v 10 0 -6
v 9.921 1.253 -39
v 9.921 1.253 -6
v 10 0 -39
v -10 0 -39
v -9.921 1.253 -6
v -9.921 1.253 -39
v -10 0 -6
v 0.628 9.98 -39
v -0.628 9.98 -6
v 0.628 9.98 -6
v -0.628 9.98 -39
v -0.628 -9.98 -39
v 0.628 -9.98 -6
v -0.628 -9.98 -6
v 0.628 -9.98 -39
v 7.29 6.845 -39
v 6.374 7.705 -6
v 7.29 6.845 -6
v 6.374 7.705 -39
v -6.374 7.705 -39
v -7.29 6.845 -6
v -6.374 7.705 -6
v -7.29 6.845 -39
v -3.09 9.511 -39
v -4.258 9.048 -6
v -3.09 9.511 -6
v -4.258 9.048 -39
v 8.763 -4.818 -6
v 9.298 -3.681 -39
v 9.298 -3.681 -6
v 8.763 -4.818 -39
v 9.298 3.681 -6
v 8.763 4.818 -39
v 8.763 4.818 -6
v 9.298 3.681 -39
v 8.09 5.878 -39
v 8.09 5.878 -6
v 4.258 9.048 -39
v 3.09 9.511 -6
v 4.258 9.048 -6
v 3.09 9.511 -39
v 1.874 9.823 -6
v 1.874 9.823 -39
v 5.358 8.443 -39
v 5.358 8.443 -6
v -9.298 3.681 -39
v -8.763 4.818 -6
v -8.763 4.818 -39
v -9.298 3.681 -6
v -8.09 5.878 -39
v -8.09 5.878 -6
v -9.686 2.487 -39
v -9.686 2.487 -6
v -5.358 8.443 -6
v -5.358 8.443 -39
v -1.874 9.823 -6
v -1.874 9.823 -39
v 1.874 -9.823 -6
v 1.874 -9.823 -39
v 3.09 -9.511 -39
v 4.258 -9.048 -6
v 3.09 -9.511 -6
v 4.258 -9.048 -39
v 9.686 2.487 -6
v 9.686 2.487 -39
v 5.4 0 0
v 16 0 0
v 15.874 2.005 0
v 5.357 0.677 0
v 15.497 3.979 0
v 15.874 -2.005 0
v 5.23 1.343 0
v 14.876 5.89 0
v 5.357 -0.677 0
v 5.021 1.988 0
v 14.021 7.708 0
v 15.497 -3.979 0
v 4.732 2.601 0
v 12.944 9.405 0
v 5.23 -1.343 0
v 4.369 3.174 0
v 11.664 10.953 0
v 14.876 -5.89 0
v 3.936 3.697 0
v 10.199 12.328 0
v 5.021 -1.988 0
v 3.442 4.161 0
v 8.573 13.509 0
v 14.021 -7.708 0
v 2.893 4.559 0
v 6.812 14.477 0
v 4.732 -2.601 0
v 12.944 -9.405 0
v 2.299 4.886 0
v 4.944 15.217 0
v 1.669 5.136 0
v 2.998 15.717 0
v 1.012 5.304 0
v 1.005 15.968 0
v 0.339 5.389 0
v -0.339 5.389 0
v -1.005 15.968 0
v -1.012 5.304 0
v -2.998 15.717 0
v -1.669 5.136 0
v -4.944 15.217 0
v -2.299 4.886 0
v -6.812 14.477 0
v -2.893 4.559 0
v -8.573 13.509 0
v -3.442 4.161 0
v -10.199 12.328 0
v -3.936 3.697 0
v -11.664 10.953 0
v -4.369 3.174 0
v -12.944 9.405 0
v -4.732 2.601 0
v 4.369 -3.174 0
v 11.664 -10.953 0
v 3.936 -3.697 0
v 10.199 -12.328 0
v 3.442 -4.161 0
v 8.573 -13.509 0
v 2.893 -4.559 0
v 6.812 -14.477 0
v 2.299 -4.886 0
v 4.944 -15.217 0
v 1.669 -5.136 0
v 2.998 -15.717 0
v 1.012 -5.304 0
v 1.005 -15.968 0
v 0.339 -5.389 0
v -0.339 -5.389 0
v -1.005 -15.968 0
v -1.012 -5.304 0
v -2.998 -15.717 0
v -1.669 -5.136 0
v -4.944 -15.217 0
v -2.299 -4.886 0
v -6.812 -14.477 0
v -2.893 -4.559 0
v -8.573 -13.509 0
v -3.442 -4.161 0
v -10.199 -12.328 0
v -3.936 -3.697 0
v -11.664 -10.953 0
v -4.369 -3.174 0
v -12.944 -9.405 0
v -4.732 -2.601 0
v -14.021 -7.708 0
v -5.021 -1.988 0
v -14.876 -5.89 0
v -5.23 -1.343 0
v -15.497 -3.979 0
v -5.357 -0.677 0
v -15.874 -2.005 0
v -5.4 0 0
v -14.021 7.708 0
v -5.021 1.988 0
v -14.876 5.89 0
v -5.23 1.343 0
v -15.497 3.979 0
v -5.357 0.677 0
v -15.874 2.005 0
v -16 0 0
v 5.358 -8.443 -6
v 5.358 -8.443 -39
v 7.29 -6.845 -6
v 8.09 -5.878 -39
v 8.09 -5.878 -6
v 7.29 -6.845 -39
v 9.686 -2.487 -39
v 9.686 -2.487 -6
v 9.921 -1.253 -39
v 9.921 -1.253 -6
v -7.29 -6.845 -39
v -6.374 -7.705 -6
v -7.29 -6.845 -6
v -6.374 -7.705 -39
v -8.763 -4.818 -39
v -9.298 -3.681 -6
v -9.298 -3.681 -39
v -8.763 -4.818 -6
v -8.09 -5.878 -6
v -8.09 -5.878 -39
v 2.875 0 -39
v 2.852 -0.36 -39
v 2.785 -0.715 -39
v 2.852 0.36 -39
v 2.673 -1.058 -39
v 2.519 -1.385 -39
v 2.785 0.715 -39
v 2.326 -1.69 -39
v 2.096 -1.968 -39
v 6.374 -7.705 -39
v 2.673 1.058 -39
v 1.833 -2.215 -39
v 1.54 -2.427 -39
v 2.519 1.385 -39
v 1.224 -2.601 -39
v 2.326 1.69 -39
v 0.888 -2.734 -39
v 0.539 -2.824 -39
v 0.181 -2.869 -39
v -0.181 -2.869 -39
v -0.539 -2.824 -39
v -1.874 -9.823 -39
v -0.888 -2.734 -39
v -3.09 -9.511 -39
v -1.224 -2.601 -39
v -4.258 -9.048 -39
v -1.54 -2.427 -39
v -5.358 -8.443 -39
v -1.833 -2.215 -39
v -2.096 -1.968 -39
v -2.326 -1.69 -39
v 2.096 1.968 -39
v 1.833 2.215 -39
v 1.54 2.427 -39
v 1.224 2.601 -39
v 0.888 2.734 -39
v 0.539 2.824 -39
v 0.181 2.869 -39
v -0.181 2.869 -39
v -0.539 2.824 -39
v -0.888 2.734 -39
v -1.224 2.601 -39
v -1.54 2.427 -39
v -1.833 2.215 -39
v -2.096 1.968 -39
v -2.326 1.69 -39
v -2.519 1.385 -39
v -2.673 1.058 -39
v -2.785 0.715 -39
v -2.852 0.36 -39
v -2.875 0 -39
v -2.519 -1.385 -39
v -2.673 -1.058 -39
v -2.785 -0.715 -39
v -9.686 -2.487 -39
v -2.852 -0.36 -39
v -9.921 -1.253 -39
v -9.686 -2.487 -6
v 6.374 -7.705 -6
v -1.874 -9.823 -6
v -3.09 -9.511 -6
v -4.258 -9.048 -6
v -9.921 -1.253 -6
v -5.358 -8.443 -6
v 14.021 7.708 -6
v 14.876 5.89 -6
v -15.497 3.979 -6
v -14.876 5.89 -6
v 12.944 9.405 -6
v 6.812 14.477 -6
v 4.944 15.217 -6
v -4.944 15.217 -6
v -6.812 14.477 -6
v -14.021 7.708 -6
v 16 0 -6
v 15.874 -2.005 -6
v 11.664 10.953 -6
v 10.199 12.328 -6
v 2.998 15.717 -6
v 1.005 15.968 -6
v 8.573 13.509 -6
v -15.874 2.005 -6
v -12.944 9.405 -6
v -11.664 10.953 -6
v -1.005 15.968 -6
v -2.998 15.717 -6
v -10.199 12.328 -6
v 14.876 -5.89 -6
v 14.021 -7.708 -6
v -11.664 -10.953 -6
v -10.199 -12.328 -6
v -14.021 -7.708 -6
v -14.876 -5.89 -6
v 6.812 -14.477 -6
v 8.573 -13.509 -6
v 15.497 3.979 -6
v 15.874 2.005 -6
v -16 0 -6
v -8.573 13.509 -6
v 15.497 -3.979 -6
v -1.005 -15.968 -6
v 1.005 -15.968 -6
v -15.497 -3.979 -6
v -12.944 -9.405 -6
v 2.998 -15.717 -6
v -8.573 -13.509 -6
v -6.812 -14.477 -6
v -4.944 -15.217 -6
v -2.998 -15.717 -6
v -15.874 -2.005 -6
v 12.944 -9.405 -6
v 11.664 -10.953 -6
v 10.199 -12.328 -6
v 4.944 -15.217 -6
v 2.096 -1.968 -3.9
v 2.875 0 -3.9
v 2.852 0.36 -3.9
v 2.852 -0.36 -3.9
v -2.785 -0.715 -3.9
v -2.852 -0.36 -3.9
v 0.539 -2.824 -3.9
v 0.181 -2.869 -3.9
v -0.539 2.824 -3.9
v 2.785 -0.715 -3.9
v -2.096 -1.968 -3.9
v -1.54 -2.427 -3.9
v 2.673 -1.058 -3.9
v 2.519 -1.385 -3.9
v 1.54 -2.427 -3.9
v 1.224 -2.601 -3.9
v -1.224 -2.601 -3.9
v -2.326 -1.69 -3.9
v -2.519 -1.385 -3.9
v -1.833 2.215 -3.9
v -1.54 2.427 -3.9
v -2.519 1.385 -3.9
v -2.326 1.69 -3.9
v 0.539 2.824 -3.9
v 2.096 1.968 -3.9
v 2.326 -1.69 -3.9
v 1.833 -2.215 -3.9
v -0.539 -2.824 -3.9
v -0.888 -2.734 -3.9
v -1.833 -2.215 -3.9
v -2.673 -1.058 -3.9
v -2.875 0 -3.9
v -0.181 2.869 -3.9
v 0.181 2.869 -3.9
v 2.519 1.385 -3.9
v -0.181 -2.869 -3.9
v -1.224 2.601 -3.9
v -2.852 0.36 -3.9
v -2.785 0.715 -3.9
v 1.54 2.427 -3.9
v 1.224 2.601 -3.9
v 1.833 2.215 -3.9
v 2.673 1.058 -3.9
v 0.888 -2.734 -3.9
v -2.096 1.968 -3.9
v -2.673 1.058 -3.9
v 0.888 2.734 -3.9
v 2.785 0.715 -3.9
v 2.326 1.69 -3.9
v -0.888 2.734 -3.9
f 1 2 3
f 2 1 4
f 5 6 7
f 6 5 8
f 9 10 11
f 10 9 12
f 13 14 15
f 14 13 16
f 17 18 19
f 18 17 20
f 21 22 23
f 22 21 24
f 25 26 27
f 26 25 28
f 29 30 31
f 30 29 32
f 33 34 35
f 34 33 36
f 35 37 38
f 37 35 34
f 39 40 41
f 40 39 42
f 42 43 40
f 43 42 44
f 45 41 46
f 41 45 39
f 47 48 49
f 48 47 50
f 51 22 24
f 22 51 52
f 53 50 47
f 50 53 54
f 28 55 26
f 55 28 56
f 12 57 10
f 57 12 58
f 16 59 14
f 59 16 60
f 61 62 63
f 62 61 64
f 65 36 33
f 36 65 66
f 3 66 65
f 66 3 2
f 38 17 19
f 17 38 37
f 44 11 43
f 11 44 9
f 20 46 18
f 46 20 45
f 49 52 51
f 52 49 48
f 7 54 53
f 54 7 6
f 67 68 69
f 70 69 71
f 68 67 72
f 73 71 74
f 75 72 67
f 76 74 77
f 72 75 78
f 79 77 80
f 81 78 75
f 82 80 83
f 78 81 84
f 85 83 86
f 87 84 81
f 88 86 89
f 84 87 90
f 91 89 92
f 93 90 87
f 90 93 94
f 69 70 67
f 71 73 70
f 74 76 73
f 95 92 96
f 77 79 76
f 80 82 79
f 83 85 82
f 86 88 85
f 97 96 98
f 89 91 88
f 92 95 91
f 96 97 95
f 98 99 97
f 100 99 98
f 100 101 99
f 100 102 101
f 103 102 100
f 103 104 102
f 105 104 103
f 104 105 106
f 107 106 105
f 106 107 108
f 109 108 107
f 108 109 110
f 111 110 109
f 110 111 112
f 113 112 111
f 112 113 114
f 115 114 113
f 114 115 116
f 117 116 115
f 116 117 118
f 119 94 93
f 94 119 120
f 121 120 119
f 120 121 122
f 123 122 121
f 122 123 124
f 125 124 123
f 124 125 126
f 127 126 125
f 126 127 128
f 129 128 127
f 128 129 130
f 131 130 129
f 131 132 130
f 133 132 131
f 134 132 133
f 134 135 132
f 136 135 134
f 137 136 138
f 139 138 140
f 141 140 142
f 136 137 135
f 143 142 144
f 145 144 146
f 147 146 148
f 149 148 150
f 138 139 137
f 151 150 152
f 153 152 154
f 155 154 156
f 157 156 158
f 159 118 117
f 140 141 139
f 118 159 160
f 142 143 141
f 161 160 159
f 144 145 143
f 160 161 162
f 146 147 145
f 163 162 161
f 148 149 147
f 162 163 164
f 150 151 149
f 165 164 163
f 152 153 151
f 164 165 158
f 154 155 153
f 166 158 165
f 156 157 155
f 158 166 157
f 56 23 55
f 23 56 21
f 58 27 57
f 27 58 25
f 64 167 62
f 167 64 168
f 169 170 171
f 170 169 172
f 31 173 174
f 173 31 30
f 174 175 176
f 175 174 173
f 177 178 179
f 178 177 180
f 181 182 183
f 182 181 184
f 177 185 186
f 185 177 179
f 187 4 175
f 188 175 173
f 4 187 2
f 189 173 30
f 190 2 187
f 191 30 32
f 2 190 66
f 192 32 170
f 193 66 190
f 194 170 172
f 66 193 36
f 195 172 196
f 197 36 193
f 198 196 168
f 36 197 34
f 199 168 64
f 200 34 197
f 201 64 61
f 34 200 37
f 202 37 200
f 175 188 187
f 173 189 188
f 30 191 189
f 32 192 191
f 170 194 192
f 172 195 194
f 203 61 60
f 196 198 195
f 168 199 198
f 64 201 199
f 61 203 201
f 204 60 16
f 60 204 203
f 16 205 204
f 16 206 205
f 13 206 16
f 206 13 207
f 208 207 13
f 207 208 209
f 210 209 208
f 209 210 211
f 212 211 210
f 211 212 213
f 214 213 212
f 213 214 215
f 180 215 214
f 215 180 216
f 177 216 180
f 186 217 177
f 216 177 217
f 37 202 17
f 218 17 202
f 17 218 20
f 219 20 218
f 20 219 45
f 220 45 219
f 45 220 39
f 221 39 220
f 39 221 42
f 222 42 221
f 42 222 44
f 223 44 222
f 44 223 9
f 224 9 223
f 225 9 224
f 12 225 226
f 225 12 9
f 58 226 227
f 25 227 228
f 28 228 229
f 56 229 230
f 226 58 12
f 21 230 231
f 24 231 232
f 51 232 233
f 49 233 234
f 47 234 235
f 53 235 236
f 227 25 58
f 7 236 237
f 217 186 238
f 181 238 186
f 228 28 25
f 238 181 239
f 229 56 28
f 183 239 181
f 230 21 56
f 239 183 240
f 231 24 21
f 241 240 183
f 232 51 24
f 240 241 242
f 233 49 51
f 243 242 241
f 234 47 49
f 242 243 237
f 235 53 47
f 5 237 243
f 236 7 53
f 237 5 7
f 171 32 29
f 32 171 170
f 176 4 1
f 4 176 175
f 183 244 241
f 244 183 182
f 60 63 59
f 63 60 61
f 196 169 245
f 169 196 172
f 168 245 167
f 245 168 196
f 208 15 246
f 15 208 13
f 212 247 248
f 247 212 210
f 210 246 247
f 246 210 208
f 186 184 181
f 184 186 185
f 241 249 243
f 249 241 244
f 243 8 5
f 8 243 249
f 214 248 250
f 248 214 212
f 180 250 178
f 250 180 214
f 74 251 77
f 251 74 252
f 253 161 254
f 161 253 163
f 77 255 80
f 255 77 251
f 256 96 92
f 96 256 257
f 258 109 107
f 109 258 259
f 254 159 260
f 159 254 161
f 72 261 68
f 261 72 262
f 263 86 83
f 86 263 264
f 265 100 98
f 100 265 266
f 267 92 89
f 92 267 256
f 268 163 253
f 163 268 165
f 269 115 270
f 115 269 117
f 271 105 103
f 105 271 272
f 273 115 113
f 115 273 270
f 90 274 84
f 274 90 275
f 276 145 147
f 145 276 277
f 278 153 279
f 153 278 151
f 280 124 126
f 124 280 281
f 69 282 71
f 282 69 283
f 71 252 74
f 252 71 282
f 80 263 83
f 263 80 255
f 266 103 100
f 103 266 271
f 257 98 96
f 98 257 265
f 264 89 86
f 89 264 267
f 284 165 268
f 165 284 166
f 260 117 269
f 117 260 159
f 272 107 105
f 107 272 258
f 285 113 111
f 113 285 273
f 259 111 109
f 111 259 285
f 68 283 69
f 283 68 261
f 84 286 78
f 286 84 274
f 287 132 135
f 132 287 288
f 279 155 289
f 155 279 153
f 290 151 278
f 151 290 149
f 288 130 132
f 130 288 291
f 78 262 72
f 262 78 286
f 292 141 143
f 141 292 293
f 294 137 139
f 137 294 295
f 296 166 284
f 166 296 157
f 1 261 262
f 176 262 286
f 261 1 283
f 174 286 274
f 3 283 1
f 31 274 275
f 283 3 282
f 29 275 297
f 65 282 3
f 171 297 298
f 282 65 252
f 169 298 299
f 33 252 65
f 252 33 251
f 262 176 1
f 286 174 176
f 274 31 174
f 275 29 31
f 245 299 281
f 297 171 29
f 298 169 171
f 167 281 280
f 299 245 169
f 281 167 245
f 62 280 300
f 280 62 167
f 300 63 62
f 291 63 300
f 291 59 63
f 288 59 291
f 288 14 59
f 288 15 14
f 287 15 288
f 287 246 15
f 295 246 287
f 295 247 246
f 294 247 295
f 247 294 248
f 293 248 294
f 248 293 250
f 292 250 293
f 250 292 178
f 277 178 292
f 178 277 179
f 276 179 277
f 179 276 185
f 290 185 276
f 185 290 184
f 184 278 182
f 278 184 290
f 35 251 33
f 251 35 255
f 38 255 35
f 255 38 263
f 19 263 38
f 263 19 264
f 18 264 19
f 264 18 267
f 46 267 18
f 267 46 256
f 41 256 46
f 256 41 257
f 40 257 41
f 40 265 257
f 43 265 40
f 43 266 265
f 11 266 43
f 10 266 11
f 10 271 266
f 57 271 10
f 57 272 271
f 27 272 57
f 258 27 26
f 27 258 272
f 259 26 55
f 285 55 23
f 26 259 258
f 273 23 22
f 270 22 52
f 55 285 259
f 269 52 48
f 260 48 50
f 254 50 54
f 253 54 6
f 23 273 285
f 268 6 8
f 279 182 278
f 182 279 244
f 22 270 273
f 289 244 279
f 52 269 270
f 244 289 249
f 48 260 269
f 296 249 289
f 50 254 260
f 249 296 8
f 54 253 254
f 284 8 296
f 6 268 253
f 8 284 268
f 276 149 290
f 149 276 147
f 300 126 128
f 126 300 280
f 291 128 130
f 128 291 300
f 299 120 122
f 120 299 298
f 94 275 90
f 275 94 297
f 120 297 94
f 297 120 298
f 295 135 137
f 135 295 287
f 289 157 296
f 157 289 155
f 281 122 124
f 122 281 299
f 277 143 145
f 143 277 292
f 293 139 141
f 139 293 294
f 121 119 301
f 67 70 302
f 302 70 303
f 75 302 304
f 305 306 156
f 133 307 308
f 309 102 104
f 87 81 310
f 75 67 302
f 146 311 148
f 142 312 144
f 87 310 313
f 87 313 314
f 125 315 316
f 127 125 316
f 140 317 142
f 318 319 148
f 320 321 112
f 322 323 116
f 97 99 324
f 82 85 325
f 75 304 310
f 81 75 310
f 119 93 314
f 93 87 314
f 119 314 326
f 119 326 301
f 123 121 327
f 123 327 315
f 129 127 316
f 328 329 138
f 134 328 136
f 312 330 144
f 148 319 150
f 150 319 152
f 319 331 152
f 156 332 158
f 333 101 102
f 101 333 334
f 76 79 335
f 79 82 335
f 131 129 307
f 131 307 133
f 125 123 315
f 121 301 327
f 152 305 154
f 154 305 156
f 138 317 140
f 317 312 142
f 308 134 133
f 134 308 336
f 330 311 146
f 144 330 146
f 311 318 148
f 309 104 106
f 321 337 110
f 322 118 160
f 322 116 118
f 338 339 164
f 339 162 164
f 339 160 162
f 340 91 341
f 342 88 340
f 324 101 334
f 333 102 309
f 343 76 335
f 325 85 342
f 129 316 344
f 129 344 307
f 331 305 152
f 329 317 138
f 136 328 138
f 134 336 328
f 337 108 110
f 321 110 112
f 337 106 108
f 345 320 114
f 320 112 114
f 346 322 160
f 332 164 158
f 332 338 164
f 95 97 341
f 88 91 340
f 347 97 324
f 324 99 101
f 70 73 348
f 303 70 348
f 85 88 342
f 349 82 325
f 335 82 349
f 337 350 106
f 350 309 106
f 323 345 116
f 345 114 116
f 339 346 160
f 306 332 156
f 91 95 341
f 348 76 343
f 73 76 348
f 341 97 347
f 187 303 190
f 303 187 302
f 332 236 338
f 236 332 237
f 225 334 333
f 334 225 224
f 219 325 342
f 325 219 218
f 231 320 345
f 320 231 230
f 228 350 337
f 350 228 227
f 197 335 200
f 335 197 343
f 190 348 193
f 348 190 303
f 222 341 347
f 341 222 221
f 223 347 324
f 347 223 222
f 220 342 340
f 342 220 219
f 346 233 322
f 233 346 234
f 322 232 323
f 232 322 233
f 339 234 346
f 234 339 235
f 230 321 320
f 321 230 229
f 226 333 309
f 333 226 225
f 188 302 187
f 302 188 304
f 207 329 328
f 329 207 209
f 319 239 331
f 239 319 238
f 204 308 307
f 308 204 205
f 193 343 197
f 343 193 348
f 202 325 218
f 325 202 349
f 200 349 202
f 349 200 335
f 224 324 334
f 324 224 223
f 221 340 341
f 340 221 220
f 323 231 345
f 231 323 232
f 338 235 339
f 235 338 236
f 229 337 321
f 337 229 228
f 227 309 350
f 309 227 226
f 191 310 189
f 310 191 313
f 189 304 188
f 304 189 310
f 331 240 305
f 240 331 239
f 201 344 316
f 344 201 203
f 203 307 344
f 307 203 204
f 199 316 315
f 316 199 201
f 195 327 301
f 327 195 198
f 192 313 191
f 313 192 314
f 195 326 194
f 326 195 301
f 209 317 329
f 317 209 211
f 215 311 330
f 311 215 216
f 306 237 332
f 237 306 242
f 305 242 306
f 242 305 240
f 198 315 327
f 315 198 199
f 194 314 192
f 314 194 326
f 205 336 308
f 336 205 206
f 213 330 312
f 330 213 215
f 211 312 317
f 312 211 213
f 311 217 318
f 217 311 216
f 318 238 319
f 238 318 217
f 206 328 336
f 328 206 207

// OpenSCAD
$fn = 50;


difference() {
	union() {
		translate(v = [0, 0, -39.0000000000]) {
			cylinder(h = 39, r = 10.0000000000);
		}
		translate(v = [0, 0, -6.0000000000]) {
			cylinder(h = 6, r = 16.0000000000);
		}
	}
	union() {
		translate(v = [0, 0, 0]) {
			rotate(a = [0, 0, 0]) {
				difference() {
					union() {
						#translate(v = [0, 0, -39.0000000000]) {
							cylinder(h = 39, r = 2.6000000000);
						}
						#translate(v = [0, 0, -3.9000000000]) {
							cylinder(h = 3.9000000000, r = 10.0000000000, r1 = 2.8750000000, r2 = 5.4000000000);
						}
						#translate(v = [0, 0, -39.0000000000]) {
							cylinder(h = 39, r = 2.8750000000);
						}
						#translate(v = [0, 0, -39.0000000000]) {
							cylinder(h = 39, r = 2.6000000000);
						}
					}
					union();
				}
			}
		}
	}
}
